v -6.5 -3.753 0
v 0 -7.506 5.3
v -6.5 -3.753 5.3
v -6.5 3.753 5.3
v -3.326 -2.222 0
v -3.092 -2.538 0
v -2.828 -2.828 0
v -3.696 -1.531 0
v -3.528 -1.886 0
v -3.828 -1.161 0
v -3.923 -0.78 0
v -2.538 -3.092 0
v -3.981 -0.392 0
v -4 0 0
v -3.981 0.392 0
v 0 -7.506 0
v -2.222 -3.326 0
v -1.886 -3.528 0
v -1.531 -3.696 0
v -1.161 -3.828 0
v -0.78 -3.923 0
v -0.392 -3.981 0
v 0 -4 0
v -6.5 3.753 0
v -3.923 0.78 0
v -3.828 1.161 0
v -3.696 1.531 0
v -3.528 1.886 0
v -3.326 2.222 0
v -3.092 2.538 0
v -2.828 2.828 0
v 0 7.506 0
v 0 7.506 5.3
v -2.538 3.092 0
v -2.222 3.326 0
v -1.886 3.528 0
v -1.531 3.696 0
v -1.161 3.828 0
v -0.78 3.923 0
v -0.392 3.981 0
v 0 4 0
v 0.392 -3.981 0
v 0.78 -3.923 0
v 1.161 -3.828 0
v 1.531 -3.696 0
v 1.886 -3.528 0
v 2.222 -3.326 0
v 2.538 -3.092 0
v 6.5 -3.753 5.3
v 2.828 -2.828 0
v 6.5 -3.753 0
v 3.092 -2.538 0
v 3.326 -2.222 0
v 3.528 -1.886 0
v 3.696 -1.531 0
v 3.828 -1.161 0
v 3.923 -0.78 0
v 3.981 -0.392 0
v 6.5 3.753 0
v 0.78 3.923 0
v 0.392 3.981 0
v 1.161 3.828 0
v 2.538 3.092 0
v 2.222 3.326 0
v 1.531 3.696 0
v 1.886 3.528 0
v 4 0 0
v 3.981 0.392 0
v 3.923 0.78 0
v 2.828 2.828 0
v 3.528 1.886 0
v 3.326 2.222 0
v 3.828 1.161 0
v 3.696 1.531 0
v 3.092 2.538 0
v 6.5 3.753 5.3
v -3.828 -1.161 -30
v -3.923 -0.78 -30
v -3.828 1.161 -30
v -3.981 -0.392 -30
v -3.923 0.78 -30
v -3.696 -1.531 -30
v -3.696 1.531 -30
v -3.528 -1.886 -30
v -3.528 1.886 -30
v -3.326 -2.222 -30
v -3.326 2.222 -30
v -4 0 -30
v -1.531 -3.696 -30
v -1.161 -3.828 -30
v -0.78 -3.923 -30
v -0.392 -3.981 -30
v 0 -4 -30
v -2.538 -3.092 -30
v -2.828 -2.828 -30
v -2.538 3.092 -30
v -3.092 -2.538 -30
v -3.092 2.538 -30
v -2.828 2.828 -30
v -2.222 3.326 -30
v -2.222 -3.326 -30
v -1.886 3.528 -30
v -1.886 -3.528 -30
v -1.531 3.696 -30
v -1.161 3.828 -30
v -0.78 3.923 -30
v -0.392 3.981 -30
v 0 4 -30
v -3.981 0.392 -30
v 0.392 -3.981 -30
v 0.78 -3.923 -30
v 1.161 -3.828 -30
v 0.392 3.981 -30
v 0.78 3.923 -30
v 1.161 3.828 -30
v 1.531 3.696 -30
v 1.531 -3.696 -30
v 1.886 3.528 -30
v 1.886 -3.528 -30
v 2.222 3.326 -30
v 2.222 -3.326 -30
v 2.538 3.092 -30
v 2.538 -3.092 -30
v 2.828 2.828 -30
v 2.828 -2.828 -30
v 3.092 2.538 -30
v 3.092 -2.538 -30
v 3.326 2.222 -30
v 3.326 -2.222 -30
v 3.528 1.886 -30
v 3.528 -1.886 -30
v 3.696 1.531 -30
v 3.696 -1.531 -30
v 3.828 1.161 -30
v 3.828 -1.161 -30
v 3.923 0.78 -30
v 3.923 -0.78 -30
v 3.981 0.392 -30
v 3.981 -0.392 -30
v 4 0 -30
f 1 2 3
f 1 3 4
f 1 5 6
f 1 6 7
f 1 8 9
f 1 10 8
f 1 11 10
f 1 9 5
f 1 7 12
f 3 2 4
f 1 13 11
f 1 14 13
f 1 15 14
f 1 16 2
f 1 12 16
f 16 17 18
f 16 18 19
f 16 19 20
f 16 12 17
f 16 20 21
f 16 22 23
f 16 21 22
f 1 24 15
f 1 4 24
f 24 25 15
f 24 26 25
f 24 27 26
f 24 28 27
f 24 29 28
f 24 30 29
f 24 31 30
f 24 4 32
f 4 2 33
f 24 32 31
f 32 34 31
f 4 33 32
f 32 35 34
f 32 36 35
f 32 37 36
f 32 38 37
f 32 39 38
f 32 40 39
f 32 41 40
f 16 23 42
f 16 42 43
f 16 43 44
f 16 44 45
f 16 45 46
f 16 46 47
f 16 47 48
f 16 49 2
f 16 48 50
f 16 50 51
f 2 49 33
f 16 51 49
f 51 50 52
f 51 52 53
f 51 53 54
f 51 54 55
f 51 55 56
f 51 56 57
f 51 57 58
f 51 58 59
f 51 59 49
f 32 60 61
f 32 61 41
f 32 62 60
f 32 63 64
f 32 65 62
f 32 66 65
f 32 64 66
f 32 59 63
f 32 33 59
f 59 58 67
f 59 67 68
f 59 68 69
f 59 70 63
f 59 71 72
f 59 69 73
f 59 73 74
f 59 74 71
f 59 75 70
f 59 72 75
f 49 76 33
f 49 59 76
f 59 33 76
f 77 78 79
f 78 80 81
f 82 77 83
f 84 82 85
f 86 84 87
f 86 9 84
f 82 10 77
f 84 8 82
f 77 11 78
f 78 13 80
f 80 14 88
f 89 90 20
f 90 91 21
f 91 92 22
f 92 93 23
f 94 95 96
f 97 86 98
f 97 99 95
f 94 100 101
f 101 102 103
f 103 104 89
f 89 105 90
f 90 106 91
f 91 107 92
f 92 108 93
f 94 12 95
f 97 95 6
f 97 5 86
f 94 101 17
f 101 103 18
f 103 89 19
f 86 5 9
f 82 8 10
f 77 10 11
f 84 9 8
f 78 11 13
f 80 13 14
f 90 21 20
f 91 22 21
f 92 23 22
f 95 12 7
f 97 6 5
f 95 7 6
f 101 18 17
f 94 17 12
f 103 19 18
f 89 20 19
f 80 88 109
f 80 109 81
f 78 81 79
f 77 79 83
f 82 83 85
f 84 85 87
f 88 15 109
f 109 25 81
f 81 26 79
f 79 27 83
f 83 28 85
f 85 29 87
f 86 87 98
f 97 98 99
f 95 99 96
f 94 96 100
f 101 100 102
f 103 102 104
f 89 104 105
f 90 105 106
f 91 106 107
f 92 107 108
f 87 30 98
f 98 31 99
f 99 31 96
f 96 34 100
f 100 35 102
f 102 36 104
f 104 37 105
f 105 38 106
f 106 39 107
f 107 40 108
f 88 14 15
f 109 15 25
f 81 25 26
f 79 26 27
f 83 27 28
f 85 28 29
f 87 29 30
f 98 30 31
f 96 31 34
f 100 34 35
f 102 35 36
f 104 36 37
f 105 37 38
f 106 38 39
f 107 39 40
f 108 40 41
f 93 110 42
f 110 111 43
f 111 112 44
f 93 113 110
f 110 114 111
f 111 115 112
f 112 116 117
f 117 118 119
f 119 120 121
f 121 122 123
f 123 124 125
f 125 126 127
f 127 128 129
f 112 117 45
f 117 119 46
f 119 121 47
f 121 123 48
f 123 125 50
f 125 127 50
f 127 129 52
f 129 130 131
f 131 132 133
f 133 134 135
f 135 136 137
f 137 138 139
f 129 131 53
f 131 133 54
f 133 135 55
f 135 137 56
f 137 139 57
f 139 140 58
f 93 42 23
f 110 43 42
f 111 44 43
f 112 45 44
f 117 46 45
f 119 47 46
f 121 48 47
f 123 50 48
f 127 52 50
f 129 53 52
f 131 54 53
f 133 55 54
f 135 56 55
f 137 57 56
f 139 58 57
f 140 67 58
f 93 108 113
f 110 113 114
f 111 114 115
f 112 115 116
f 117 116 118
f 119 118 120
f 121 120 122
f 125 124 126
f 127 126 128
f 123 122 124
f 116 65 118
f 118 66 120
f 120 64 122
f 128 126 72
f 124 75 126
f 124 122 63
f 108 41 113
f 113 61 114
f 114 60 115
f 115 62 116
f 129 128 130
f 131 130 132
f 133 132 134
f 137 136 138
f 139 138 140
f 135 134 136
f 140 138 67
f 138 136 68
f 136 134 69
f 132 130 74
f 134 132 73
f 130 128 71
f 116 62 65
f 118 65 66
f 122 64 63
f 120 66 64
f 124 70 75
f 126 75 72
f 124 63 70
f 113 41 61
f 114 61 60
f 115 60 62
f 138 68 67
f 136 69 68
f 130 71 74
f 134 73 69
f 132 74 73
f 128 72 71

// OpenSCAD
$fn = 64;

// Parameters
af = 13;           // across-flats (対辺距離)
head_h = 5.3;      // 頭部高さ
shank_d = 8;       // シャンク直径
shank_l = 30;      // シャンク長さ

// Hex head: bottom face at z=0, extending upward
translate([0, 0, head_h / 2])
    rotate([0, 0, 30])
        cylinder(d = af / cos(30), h = head_h, center = true, $fn = 6);

// Shank: extending downward from z=0
translate([0, 0, -shank_l / 2])
    cylinder(d = shank_d, h = shank_l, center = true);
